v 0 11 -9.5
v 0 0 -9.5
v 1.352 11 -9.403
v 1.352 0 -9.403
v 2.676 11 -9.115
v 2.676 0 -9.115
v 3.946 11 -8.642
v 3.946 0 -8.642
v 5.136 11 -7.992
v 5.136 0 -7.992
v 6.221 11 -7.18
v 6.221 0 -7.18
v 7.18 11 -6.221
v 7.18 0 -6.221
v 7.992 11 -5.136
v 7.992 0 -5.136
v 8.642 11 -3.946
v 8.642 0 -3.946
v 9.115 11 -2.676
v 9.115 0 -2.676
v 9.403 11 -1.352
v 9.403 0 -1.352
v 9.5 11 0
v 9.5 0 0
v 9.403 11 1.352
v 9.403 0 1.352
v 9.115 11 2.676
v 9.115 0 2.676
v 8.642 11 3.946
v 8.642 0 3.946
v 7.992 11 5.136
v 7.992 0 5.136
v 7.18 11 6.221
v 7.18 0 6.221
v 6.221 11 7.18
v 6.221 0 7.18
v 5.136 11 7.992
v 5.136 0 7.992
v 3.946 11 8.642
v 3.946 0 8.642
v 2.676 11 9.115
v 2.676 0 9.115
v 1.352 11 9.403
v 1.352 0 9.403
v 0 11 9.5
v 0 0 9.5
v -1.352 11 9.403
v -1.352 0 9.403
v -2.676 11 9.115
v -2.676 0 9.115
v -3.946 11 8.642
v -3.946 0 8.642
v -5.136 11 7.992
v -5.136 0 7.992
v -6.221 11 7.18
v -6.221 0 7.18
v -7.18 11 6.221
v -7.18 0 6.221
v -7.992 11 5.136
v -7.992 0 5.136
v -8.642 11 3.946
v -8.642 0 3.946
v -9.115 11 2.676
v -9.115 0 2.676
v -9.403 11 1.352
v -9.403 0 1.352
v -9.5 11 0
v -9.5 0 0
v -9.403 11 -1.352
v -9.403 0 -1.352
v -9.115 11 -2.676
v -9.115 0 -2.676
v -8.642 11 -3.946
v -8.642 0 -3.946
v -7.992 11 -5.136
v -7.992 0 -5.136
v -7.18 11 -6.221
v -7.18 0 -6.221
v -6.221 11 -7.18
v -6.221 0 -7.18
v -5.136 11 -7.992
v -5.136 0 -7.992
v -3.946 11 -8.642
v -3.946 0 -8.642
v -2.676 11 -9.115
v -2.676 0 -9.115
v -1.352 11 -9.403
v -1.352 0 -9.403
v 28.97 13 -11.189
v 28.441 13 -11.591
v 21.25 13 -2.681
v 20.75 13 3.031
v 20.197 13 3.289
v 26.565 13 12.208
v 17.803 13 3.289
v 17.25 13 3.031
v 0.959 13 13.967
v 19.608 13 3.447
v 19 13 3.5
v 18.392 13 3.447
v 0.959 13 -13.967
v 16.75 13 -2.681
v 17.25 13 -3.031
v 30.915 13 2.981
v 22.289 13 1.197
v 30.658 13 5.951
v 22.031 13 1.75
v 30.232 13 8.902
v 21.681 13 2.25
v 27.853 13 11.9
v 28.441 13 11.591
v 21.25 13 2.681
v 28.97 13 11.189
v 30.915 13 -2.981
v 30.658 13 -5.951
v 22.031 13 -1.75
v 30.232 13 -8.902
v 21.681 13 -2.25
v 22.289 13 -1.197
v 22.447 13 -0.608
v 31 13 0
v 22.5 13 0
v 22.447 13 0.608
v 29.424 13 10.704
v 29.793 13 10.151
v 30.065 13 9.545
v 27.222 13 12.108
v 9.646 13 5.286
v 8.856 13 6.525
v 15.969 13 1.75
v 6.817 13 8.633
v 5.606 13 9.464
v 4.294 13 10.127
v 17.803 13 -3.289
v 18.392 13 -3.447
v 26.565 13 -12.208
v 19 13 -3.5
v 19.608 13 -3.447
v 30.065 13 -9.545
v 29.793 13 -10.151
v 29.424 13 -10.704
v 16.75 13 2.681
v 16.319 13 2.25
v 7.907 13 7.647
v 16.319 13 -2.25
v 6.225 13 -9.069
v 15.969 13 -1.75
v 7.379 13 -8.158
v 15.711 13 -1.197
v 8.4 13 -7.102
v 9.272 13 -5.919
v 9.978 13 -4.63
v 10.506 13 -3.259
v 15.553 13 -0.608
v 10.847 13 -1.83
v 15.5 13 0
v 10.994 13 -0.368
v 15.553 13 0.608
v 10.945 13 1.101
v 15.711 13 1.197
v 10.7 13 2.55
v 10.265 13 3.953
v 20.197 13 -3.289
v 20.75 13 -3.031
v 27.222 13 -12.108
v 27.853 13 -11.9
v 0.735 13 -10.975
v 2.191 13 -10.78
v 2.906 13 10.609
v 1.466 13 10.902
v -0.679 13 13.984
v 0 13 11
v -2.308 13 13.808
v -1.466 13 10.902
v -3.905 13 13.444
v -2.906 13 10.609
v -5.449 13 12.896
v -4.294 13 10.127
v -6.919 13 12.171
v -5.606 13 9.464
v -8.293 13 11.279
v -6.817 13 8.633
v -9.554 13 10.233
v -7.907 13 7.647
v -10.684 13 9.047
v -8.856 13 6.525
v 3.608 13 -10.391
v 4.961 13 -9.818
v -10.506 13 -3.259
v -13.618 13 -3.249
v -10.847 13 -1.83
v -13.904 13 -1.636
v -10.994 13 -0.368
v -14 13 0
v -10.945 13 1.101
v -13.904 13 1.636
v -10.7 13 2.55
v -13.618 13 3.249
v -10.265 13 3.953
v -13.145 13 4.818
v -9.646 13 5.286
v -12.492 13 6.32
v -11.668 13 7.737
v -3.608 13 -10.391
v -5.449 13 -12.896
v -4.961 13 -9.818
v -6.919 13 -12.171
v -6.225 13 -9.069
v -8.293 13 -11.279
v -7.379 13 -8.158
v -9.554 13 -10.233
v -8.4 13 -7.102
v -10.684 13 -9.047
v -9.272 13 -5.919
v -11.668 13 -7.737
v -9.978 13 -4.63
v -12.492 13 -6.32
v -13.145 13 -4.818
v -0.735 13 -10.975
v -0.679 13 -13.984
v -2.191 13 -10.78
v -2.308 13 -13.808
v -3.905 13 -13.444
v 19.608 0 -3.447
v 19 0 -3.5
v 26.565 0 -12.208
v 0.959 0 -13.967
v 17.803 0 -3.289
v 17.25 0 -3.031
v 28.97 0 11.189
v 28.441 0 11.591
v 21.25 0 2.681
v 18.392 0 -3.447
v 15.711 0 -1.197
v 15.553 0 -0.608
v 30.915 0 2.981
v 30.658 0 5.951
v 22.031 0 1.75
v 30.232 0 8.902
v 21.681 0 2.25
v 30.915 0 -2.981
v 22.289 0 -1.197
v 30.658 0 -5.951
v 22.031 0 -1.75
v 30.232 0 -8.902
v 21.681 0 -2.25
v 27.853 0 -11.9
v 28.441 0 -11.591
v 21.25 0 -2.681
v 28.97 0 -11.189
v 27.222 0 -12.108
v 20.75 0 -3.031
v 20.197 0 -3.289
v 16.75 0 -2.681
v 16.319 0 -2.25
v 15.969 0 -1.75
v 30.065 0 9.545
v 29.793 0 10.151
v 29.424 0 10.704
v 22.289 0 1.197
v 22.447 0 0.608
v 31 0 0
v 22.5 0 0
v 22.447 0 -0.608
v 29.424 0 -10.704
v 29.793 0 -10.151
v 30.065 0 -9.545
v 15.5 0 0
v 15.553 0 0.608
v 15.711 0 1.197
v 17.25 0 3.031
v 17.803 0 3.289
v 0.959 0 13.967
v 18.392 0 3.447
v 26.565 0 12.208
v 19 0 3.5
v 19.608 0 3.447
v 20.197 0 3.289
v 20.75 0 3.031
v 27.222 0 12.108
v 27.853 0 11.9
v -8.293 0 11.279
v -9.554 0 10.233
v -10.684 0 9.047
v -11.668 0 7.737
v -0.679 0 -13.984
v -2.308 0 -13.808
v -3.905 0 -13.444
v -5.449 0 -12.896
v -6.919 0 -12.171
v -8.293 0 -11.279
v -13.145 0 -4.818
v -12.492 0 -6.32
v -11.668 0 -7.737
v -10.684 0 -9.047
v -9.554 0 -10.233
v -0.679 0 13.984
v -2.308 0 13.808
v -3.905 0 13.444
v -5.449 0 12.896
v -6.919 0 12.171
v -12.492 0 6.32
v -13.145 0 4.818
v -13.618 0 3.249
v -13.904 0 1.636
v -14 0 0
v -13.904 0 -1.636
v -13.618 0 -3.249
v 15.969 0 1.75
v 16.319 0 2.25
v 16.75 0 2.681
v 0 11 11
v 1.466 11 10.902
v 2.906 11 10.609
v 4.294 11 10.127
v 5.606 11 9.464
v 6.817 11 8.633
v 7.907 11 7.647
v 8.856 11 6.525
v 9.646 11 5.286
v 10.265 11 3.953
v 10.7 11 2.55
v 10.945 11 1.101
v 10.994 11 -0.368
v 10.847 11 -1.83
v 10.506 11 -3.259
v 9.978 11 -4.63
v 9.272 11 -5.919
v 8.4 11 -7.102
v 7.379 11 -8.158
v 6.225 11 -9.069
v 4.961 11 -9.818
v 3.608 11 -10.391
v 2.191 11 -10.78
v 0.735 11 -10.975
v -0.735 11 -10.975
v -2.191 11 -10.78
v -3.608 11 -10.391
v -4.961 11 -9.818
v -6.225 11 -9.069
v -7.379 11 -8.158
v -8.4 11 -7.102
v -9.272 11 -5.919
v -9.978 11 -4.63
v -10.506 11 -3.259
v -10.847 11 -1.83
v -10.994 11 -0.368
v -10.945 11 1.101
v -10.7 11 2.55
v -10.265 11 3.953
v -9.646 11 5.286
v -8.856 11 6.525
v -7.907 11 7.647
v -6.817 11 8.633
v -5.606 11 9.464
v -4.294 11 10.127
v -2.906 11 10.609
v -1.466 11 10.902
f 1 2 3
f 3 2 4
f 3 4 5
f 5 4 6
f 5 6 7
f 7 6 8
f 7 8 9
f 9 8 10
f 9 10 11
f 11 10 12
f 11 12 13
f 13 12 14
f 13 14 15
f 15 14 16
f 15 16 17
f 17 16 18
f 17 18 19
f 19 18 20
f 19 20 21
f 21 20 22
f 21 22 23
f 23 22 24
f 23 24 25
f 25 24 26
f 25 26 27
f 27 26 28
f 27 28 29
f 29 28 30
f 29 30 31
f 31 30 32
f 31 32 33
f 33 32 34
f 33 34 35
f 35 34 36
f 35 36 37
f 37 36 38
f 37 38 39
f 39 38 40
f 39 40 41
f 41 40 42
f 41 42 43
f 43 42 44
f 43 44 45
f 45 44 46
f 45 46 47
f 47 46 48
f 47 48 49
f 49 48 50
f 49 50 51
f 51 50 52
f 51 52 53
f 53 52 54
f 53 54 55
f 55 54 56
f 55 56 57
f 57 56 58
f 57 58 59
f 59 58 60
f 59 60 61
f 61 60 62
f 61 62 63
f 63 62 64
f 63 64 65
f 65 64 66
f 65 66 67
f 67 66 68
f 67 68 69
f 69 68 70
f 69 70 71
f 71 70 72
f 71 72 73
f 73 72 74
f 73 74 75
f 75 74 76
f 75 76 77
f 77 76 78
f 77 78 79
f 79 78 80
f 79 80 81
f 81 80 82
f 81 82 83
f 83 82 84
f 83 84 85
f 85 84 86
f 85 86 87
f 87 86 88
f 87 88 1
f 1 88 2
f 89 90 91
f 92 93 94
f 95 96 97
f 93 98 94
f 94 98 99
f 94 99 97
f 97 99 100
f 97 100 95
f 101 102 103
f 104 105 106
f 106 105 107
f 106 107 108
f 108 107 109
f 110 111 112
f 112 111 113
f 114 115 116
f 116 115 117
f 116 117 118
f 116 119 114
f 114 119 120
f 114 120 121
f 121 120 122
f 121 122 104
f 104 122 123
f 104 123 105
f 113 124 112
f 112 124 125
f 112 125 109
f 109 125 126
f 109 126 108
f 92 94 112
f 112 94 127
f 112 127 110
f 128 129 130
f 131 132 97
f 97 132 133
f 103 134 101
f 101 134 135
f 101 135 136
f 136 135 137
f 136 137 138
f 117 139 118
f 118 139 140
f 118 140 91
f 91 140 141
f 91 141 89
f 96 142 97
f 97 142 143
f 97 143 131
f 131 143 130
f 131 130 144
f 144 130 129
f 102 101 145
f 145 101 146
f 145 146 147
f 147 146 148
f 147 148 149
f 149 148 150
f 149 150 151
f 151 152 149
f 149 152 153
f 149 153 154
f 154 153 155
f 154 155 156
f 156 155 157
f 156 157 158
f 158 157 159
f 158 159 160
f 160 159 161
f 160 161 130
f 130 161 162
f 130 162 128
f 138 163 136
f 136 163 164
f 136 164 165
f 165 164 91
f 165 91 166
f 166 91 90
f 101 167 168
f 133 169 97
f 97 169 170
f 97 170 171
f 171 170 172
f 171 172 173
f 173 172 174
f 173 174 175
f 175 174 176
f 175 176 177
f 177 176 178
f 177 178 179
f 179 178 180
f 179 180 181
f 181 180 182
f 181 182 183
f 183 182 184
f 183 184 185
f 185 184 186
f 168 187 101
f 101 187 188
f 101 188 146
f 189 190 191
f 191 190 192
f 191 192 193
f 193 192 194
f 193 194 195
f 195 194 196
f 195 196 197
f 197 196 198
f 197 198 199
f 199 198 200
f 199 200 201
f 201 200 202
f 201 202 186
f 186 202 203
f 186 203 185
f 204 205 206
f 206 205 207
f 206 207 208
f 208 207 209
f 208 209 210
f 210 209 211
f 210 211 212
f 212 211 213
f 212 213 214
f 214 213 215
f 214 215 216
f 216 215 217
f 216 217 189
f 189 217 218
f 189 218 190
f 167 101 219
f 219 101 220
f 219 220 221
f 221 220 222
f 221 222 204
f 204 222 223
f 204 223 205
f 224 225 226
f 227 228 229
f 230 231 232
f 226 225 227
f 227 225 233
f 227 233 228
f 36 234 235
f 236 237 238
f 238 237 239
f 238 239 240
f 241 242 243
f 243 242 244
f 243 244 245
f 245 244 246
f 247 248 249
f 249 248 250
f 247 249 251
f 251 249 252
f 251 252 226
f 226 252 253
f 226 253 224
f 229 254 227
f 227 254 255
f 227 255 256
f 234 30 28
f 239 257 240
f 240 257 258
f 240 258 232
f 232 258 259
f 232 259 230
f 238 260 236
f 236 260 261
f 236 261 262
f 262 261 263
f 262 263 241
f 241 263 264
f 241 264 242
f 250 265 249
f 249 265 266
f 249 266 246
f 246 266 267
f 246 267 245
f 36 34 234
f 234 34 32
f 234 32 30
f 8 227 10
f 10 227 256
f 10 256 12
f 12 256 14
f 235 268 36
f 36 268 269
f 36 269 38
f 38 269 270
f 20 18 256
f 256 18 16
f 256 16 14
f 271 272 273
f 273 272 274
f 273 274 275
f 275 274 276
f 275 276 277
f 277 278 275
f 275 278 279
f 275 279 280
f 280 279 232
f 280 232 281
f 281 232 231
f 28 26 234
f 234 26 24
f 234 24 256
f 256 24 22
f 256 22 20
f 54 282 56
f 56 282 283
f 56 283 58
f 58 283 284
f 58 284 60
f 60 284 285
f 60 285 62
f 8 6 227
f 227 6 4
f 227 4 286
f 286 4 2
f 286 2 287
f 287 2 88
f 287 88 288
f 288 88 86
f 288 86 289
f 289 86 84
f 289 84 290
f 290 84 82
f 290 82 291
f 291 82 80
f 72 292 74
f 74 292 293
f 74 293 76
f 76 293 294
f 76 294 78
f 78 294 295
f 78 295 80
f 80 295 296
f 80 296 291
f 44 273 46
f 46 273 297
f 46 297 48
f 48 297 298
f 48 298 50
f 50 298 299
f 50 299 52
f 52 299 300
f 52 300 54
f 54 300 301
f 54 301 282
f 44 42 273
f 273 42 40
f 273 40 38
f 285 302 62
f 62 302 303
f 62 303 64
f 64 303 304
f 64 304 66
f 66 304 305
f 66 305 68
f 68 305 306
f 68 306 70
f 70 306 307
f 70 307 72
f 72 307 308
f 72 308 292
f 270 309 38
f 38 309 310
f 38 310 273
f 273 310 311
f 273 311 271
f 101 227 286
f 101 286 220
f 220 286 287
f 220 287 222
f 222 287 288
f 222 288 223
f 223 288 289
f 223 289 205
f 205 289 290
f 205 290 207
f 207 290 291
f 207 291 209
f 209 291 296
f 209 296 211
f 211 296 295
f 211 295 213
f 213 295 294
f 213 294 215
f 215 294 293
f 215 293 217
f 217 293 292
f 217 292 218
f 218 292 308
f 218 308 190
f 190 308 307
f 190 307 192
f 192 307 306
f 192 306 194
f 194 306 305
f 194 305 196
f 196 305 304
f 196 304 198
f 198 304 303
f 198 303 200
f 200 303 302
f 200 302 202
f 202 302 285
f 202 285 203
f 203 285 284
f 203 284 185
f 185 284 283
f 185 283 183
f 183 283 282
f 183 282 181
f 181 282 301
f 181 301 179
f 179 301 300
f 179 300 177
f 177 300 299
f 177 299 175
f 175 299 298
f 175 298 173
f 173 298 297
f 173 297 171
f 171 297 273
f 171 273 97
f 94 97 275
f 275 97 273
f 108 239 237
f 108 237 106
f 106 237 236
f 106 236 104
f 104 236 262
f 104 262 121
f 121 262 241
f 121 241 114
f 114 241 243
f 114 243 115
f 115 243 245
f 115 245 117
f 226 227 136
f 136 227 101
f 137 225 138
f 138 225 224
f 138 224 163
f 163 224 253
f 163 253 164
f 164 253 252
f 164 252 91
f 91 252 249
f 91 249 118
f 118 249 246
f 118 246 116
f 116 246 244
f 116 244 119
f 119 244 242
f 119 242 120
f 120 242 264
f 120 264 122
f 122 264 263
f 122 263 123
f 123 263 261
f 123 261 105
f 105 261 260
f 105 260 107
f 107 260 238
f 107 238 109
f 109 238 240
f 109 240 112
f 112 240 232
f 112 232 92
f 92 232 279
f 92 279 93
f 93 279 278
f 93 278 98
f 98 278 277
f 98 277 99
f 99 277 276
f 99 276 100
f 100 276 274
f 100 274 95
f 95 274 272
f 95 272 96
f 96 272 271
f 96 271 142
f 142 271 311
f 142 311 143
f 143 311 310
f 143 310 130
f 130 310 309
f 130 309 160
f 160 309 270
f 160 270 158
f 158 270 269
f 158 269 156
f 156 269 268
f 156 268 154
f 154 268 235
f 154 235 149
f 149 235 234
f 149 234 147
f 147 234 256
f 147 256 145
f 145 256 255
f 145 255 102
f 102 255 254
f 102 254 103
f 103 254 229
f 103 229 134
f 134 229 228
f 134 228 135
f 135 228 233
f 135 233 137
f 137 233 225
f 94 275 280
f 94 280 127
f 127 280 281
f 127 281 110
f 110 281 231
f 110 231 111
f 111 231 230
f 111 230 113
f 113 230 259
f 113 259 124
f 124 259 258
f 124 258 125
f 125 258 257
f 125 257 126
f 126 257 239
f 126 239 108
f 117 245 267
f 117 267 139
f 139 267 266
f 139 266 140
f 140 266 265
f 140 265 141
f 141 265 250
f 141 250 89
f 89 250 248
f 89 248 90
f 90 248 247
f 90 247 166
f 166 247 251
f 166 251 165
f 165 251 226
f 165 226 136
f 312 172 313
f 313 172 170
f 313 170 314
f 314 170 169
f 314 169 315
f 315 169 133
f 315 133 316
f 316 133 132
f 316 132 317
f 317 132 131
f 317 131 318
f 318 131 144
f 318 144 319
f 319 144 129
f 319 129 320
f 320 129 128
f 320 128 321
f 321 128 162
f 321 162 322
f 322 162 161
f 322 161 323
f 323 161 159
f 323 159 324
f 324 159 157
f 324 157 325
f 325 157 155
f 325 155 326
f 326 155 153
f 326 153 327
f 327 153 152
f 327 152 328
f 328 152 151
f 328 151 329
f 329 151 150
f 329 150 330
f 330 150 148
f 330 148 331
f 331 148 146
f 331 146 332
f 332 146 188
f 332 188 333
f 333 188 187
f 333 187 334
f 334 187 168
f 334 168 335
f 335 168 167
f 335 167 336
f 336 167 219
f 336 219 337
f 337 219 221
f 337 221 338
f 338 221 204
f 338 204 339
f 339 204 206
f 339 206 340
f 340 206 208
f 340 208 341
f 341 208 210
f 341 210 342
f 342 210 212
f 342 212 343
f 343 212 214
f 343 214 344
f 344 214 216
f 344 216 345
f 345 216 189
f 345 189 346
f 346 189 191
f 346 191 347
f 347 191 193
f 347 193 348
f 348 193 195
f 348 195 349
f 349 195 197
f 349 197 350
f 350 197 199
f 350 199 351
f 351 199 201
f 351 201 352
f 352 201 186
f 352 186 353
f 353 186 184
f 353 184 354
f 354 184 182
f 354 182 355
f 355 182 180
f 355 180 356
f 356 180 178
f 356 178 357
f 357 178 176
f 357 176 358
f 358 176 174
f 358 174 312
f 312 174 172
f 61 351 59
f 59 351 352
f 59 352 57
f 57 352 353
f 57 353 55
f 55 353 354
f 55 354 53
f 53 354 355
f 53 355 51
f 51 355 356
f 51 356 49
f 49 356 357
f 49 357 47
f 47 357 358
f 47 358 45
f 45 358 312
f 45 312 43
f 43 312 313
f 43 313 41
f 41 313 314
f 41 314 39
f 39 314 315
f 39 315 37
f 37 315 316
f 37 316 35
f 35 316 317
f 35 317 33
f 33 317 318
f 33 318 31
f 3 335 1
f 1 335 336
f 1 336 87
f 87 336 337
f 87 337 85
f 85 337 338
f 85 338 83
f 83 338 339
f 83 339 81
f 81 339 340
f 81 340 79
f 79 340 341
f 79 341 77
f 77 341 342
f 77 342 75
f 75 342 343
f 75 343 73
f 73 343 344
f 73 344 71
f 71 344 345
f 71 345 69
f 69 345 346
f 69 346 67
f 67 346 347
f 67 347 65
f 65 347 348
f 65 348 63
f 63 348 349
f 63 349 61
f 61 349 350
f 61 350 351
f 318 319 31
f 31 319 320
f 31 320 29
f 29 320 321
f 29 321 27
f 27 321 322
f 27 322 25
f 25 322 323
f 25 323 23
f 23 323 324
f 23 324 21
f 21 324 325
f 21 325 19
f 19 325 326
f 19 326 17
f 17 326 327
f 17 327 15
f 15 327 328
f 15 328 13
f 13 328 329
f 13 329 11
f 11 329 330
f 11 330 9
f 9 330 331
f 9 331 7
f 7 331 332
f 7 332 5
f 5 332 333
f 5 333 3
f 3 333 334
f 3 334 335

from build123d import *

# Parameters (mm, degrees)
SKETCH1_R           = 9.5
SKETCH1_R_2         = 3.5
BOSS_EXTRUDE1_DEPTH = 13
FILLET1_R           = 4
SKETCH3_R           = 11
CUT_EXTRUDE1_DEPTH  = 2


with BuildPart() as part:
    # Sketch1 → Boss-Extrude1 (new body)
    with BuildSketch(Plane(origin=(0, 0, 0), x_dir=(1, 0, 0), z_dir=(0, 1, 0))):
        with BuildLine():
            Line((0.959404, 13.967087884), (29.596442563, 12))
            ThreePointArc((29.596442563, 12), (31, 0), (29.596442563, -12))
            Line((29.596442563, -12), (0.959404, -13.967087884))
            ThreePointArc((0.959404, -13.967087884), (-14, 0), (0.959404, 13.967087884))
        make_face()
        with Locations(Location((0, 0, 0), (0, 0, 90))):
            Circle(SKETCH1_R, mode=Mode.SUBTRACT)
        with Locations(Location((19, 0, 0), (0, 0, 90))):
            Circle(SKETCH1_R_2, mode=Mode.SUBTRACT)
    extrude(amount=BOSS_EXTRUDE1_DEPTH)

    # Fillet1
    fillet1_edges = [part.edges().sort_by_distance(p)[0] for p in [
        (29.596442563, 6.5, -12),
        (29.596442563, 6.5, 12),
    ]]
    fillet(fillet1_edges, radius=FILLET1_R)

    # Sketch3 → Cut-Extrude1 (cut)
    with BuildSketch(Plane(origin=(0, 13, 0), x_dir=(1, 0, 0), z_dir=(0, 1, 0))):
        with Locations(Location((0, 0, 0), (0, 0, 270))):
            Circle(SKETCH3_R)
    extrude(amount=-CUT_EXTRUDE1_DEPTH, mode=Mode.SUBTRACT)


solid = part.part
